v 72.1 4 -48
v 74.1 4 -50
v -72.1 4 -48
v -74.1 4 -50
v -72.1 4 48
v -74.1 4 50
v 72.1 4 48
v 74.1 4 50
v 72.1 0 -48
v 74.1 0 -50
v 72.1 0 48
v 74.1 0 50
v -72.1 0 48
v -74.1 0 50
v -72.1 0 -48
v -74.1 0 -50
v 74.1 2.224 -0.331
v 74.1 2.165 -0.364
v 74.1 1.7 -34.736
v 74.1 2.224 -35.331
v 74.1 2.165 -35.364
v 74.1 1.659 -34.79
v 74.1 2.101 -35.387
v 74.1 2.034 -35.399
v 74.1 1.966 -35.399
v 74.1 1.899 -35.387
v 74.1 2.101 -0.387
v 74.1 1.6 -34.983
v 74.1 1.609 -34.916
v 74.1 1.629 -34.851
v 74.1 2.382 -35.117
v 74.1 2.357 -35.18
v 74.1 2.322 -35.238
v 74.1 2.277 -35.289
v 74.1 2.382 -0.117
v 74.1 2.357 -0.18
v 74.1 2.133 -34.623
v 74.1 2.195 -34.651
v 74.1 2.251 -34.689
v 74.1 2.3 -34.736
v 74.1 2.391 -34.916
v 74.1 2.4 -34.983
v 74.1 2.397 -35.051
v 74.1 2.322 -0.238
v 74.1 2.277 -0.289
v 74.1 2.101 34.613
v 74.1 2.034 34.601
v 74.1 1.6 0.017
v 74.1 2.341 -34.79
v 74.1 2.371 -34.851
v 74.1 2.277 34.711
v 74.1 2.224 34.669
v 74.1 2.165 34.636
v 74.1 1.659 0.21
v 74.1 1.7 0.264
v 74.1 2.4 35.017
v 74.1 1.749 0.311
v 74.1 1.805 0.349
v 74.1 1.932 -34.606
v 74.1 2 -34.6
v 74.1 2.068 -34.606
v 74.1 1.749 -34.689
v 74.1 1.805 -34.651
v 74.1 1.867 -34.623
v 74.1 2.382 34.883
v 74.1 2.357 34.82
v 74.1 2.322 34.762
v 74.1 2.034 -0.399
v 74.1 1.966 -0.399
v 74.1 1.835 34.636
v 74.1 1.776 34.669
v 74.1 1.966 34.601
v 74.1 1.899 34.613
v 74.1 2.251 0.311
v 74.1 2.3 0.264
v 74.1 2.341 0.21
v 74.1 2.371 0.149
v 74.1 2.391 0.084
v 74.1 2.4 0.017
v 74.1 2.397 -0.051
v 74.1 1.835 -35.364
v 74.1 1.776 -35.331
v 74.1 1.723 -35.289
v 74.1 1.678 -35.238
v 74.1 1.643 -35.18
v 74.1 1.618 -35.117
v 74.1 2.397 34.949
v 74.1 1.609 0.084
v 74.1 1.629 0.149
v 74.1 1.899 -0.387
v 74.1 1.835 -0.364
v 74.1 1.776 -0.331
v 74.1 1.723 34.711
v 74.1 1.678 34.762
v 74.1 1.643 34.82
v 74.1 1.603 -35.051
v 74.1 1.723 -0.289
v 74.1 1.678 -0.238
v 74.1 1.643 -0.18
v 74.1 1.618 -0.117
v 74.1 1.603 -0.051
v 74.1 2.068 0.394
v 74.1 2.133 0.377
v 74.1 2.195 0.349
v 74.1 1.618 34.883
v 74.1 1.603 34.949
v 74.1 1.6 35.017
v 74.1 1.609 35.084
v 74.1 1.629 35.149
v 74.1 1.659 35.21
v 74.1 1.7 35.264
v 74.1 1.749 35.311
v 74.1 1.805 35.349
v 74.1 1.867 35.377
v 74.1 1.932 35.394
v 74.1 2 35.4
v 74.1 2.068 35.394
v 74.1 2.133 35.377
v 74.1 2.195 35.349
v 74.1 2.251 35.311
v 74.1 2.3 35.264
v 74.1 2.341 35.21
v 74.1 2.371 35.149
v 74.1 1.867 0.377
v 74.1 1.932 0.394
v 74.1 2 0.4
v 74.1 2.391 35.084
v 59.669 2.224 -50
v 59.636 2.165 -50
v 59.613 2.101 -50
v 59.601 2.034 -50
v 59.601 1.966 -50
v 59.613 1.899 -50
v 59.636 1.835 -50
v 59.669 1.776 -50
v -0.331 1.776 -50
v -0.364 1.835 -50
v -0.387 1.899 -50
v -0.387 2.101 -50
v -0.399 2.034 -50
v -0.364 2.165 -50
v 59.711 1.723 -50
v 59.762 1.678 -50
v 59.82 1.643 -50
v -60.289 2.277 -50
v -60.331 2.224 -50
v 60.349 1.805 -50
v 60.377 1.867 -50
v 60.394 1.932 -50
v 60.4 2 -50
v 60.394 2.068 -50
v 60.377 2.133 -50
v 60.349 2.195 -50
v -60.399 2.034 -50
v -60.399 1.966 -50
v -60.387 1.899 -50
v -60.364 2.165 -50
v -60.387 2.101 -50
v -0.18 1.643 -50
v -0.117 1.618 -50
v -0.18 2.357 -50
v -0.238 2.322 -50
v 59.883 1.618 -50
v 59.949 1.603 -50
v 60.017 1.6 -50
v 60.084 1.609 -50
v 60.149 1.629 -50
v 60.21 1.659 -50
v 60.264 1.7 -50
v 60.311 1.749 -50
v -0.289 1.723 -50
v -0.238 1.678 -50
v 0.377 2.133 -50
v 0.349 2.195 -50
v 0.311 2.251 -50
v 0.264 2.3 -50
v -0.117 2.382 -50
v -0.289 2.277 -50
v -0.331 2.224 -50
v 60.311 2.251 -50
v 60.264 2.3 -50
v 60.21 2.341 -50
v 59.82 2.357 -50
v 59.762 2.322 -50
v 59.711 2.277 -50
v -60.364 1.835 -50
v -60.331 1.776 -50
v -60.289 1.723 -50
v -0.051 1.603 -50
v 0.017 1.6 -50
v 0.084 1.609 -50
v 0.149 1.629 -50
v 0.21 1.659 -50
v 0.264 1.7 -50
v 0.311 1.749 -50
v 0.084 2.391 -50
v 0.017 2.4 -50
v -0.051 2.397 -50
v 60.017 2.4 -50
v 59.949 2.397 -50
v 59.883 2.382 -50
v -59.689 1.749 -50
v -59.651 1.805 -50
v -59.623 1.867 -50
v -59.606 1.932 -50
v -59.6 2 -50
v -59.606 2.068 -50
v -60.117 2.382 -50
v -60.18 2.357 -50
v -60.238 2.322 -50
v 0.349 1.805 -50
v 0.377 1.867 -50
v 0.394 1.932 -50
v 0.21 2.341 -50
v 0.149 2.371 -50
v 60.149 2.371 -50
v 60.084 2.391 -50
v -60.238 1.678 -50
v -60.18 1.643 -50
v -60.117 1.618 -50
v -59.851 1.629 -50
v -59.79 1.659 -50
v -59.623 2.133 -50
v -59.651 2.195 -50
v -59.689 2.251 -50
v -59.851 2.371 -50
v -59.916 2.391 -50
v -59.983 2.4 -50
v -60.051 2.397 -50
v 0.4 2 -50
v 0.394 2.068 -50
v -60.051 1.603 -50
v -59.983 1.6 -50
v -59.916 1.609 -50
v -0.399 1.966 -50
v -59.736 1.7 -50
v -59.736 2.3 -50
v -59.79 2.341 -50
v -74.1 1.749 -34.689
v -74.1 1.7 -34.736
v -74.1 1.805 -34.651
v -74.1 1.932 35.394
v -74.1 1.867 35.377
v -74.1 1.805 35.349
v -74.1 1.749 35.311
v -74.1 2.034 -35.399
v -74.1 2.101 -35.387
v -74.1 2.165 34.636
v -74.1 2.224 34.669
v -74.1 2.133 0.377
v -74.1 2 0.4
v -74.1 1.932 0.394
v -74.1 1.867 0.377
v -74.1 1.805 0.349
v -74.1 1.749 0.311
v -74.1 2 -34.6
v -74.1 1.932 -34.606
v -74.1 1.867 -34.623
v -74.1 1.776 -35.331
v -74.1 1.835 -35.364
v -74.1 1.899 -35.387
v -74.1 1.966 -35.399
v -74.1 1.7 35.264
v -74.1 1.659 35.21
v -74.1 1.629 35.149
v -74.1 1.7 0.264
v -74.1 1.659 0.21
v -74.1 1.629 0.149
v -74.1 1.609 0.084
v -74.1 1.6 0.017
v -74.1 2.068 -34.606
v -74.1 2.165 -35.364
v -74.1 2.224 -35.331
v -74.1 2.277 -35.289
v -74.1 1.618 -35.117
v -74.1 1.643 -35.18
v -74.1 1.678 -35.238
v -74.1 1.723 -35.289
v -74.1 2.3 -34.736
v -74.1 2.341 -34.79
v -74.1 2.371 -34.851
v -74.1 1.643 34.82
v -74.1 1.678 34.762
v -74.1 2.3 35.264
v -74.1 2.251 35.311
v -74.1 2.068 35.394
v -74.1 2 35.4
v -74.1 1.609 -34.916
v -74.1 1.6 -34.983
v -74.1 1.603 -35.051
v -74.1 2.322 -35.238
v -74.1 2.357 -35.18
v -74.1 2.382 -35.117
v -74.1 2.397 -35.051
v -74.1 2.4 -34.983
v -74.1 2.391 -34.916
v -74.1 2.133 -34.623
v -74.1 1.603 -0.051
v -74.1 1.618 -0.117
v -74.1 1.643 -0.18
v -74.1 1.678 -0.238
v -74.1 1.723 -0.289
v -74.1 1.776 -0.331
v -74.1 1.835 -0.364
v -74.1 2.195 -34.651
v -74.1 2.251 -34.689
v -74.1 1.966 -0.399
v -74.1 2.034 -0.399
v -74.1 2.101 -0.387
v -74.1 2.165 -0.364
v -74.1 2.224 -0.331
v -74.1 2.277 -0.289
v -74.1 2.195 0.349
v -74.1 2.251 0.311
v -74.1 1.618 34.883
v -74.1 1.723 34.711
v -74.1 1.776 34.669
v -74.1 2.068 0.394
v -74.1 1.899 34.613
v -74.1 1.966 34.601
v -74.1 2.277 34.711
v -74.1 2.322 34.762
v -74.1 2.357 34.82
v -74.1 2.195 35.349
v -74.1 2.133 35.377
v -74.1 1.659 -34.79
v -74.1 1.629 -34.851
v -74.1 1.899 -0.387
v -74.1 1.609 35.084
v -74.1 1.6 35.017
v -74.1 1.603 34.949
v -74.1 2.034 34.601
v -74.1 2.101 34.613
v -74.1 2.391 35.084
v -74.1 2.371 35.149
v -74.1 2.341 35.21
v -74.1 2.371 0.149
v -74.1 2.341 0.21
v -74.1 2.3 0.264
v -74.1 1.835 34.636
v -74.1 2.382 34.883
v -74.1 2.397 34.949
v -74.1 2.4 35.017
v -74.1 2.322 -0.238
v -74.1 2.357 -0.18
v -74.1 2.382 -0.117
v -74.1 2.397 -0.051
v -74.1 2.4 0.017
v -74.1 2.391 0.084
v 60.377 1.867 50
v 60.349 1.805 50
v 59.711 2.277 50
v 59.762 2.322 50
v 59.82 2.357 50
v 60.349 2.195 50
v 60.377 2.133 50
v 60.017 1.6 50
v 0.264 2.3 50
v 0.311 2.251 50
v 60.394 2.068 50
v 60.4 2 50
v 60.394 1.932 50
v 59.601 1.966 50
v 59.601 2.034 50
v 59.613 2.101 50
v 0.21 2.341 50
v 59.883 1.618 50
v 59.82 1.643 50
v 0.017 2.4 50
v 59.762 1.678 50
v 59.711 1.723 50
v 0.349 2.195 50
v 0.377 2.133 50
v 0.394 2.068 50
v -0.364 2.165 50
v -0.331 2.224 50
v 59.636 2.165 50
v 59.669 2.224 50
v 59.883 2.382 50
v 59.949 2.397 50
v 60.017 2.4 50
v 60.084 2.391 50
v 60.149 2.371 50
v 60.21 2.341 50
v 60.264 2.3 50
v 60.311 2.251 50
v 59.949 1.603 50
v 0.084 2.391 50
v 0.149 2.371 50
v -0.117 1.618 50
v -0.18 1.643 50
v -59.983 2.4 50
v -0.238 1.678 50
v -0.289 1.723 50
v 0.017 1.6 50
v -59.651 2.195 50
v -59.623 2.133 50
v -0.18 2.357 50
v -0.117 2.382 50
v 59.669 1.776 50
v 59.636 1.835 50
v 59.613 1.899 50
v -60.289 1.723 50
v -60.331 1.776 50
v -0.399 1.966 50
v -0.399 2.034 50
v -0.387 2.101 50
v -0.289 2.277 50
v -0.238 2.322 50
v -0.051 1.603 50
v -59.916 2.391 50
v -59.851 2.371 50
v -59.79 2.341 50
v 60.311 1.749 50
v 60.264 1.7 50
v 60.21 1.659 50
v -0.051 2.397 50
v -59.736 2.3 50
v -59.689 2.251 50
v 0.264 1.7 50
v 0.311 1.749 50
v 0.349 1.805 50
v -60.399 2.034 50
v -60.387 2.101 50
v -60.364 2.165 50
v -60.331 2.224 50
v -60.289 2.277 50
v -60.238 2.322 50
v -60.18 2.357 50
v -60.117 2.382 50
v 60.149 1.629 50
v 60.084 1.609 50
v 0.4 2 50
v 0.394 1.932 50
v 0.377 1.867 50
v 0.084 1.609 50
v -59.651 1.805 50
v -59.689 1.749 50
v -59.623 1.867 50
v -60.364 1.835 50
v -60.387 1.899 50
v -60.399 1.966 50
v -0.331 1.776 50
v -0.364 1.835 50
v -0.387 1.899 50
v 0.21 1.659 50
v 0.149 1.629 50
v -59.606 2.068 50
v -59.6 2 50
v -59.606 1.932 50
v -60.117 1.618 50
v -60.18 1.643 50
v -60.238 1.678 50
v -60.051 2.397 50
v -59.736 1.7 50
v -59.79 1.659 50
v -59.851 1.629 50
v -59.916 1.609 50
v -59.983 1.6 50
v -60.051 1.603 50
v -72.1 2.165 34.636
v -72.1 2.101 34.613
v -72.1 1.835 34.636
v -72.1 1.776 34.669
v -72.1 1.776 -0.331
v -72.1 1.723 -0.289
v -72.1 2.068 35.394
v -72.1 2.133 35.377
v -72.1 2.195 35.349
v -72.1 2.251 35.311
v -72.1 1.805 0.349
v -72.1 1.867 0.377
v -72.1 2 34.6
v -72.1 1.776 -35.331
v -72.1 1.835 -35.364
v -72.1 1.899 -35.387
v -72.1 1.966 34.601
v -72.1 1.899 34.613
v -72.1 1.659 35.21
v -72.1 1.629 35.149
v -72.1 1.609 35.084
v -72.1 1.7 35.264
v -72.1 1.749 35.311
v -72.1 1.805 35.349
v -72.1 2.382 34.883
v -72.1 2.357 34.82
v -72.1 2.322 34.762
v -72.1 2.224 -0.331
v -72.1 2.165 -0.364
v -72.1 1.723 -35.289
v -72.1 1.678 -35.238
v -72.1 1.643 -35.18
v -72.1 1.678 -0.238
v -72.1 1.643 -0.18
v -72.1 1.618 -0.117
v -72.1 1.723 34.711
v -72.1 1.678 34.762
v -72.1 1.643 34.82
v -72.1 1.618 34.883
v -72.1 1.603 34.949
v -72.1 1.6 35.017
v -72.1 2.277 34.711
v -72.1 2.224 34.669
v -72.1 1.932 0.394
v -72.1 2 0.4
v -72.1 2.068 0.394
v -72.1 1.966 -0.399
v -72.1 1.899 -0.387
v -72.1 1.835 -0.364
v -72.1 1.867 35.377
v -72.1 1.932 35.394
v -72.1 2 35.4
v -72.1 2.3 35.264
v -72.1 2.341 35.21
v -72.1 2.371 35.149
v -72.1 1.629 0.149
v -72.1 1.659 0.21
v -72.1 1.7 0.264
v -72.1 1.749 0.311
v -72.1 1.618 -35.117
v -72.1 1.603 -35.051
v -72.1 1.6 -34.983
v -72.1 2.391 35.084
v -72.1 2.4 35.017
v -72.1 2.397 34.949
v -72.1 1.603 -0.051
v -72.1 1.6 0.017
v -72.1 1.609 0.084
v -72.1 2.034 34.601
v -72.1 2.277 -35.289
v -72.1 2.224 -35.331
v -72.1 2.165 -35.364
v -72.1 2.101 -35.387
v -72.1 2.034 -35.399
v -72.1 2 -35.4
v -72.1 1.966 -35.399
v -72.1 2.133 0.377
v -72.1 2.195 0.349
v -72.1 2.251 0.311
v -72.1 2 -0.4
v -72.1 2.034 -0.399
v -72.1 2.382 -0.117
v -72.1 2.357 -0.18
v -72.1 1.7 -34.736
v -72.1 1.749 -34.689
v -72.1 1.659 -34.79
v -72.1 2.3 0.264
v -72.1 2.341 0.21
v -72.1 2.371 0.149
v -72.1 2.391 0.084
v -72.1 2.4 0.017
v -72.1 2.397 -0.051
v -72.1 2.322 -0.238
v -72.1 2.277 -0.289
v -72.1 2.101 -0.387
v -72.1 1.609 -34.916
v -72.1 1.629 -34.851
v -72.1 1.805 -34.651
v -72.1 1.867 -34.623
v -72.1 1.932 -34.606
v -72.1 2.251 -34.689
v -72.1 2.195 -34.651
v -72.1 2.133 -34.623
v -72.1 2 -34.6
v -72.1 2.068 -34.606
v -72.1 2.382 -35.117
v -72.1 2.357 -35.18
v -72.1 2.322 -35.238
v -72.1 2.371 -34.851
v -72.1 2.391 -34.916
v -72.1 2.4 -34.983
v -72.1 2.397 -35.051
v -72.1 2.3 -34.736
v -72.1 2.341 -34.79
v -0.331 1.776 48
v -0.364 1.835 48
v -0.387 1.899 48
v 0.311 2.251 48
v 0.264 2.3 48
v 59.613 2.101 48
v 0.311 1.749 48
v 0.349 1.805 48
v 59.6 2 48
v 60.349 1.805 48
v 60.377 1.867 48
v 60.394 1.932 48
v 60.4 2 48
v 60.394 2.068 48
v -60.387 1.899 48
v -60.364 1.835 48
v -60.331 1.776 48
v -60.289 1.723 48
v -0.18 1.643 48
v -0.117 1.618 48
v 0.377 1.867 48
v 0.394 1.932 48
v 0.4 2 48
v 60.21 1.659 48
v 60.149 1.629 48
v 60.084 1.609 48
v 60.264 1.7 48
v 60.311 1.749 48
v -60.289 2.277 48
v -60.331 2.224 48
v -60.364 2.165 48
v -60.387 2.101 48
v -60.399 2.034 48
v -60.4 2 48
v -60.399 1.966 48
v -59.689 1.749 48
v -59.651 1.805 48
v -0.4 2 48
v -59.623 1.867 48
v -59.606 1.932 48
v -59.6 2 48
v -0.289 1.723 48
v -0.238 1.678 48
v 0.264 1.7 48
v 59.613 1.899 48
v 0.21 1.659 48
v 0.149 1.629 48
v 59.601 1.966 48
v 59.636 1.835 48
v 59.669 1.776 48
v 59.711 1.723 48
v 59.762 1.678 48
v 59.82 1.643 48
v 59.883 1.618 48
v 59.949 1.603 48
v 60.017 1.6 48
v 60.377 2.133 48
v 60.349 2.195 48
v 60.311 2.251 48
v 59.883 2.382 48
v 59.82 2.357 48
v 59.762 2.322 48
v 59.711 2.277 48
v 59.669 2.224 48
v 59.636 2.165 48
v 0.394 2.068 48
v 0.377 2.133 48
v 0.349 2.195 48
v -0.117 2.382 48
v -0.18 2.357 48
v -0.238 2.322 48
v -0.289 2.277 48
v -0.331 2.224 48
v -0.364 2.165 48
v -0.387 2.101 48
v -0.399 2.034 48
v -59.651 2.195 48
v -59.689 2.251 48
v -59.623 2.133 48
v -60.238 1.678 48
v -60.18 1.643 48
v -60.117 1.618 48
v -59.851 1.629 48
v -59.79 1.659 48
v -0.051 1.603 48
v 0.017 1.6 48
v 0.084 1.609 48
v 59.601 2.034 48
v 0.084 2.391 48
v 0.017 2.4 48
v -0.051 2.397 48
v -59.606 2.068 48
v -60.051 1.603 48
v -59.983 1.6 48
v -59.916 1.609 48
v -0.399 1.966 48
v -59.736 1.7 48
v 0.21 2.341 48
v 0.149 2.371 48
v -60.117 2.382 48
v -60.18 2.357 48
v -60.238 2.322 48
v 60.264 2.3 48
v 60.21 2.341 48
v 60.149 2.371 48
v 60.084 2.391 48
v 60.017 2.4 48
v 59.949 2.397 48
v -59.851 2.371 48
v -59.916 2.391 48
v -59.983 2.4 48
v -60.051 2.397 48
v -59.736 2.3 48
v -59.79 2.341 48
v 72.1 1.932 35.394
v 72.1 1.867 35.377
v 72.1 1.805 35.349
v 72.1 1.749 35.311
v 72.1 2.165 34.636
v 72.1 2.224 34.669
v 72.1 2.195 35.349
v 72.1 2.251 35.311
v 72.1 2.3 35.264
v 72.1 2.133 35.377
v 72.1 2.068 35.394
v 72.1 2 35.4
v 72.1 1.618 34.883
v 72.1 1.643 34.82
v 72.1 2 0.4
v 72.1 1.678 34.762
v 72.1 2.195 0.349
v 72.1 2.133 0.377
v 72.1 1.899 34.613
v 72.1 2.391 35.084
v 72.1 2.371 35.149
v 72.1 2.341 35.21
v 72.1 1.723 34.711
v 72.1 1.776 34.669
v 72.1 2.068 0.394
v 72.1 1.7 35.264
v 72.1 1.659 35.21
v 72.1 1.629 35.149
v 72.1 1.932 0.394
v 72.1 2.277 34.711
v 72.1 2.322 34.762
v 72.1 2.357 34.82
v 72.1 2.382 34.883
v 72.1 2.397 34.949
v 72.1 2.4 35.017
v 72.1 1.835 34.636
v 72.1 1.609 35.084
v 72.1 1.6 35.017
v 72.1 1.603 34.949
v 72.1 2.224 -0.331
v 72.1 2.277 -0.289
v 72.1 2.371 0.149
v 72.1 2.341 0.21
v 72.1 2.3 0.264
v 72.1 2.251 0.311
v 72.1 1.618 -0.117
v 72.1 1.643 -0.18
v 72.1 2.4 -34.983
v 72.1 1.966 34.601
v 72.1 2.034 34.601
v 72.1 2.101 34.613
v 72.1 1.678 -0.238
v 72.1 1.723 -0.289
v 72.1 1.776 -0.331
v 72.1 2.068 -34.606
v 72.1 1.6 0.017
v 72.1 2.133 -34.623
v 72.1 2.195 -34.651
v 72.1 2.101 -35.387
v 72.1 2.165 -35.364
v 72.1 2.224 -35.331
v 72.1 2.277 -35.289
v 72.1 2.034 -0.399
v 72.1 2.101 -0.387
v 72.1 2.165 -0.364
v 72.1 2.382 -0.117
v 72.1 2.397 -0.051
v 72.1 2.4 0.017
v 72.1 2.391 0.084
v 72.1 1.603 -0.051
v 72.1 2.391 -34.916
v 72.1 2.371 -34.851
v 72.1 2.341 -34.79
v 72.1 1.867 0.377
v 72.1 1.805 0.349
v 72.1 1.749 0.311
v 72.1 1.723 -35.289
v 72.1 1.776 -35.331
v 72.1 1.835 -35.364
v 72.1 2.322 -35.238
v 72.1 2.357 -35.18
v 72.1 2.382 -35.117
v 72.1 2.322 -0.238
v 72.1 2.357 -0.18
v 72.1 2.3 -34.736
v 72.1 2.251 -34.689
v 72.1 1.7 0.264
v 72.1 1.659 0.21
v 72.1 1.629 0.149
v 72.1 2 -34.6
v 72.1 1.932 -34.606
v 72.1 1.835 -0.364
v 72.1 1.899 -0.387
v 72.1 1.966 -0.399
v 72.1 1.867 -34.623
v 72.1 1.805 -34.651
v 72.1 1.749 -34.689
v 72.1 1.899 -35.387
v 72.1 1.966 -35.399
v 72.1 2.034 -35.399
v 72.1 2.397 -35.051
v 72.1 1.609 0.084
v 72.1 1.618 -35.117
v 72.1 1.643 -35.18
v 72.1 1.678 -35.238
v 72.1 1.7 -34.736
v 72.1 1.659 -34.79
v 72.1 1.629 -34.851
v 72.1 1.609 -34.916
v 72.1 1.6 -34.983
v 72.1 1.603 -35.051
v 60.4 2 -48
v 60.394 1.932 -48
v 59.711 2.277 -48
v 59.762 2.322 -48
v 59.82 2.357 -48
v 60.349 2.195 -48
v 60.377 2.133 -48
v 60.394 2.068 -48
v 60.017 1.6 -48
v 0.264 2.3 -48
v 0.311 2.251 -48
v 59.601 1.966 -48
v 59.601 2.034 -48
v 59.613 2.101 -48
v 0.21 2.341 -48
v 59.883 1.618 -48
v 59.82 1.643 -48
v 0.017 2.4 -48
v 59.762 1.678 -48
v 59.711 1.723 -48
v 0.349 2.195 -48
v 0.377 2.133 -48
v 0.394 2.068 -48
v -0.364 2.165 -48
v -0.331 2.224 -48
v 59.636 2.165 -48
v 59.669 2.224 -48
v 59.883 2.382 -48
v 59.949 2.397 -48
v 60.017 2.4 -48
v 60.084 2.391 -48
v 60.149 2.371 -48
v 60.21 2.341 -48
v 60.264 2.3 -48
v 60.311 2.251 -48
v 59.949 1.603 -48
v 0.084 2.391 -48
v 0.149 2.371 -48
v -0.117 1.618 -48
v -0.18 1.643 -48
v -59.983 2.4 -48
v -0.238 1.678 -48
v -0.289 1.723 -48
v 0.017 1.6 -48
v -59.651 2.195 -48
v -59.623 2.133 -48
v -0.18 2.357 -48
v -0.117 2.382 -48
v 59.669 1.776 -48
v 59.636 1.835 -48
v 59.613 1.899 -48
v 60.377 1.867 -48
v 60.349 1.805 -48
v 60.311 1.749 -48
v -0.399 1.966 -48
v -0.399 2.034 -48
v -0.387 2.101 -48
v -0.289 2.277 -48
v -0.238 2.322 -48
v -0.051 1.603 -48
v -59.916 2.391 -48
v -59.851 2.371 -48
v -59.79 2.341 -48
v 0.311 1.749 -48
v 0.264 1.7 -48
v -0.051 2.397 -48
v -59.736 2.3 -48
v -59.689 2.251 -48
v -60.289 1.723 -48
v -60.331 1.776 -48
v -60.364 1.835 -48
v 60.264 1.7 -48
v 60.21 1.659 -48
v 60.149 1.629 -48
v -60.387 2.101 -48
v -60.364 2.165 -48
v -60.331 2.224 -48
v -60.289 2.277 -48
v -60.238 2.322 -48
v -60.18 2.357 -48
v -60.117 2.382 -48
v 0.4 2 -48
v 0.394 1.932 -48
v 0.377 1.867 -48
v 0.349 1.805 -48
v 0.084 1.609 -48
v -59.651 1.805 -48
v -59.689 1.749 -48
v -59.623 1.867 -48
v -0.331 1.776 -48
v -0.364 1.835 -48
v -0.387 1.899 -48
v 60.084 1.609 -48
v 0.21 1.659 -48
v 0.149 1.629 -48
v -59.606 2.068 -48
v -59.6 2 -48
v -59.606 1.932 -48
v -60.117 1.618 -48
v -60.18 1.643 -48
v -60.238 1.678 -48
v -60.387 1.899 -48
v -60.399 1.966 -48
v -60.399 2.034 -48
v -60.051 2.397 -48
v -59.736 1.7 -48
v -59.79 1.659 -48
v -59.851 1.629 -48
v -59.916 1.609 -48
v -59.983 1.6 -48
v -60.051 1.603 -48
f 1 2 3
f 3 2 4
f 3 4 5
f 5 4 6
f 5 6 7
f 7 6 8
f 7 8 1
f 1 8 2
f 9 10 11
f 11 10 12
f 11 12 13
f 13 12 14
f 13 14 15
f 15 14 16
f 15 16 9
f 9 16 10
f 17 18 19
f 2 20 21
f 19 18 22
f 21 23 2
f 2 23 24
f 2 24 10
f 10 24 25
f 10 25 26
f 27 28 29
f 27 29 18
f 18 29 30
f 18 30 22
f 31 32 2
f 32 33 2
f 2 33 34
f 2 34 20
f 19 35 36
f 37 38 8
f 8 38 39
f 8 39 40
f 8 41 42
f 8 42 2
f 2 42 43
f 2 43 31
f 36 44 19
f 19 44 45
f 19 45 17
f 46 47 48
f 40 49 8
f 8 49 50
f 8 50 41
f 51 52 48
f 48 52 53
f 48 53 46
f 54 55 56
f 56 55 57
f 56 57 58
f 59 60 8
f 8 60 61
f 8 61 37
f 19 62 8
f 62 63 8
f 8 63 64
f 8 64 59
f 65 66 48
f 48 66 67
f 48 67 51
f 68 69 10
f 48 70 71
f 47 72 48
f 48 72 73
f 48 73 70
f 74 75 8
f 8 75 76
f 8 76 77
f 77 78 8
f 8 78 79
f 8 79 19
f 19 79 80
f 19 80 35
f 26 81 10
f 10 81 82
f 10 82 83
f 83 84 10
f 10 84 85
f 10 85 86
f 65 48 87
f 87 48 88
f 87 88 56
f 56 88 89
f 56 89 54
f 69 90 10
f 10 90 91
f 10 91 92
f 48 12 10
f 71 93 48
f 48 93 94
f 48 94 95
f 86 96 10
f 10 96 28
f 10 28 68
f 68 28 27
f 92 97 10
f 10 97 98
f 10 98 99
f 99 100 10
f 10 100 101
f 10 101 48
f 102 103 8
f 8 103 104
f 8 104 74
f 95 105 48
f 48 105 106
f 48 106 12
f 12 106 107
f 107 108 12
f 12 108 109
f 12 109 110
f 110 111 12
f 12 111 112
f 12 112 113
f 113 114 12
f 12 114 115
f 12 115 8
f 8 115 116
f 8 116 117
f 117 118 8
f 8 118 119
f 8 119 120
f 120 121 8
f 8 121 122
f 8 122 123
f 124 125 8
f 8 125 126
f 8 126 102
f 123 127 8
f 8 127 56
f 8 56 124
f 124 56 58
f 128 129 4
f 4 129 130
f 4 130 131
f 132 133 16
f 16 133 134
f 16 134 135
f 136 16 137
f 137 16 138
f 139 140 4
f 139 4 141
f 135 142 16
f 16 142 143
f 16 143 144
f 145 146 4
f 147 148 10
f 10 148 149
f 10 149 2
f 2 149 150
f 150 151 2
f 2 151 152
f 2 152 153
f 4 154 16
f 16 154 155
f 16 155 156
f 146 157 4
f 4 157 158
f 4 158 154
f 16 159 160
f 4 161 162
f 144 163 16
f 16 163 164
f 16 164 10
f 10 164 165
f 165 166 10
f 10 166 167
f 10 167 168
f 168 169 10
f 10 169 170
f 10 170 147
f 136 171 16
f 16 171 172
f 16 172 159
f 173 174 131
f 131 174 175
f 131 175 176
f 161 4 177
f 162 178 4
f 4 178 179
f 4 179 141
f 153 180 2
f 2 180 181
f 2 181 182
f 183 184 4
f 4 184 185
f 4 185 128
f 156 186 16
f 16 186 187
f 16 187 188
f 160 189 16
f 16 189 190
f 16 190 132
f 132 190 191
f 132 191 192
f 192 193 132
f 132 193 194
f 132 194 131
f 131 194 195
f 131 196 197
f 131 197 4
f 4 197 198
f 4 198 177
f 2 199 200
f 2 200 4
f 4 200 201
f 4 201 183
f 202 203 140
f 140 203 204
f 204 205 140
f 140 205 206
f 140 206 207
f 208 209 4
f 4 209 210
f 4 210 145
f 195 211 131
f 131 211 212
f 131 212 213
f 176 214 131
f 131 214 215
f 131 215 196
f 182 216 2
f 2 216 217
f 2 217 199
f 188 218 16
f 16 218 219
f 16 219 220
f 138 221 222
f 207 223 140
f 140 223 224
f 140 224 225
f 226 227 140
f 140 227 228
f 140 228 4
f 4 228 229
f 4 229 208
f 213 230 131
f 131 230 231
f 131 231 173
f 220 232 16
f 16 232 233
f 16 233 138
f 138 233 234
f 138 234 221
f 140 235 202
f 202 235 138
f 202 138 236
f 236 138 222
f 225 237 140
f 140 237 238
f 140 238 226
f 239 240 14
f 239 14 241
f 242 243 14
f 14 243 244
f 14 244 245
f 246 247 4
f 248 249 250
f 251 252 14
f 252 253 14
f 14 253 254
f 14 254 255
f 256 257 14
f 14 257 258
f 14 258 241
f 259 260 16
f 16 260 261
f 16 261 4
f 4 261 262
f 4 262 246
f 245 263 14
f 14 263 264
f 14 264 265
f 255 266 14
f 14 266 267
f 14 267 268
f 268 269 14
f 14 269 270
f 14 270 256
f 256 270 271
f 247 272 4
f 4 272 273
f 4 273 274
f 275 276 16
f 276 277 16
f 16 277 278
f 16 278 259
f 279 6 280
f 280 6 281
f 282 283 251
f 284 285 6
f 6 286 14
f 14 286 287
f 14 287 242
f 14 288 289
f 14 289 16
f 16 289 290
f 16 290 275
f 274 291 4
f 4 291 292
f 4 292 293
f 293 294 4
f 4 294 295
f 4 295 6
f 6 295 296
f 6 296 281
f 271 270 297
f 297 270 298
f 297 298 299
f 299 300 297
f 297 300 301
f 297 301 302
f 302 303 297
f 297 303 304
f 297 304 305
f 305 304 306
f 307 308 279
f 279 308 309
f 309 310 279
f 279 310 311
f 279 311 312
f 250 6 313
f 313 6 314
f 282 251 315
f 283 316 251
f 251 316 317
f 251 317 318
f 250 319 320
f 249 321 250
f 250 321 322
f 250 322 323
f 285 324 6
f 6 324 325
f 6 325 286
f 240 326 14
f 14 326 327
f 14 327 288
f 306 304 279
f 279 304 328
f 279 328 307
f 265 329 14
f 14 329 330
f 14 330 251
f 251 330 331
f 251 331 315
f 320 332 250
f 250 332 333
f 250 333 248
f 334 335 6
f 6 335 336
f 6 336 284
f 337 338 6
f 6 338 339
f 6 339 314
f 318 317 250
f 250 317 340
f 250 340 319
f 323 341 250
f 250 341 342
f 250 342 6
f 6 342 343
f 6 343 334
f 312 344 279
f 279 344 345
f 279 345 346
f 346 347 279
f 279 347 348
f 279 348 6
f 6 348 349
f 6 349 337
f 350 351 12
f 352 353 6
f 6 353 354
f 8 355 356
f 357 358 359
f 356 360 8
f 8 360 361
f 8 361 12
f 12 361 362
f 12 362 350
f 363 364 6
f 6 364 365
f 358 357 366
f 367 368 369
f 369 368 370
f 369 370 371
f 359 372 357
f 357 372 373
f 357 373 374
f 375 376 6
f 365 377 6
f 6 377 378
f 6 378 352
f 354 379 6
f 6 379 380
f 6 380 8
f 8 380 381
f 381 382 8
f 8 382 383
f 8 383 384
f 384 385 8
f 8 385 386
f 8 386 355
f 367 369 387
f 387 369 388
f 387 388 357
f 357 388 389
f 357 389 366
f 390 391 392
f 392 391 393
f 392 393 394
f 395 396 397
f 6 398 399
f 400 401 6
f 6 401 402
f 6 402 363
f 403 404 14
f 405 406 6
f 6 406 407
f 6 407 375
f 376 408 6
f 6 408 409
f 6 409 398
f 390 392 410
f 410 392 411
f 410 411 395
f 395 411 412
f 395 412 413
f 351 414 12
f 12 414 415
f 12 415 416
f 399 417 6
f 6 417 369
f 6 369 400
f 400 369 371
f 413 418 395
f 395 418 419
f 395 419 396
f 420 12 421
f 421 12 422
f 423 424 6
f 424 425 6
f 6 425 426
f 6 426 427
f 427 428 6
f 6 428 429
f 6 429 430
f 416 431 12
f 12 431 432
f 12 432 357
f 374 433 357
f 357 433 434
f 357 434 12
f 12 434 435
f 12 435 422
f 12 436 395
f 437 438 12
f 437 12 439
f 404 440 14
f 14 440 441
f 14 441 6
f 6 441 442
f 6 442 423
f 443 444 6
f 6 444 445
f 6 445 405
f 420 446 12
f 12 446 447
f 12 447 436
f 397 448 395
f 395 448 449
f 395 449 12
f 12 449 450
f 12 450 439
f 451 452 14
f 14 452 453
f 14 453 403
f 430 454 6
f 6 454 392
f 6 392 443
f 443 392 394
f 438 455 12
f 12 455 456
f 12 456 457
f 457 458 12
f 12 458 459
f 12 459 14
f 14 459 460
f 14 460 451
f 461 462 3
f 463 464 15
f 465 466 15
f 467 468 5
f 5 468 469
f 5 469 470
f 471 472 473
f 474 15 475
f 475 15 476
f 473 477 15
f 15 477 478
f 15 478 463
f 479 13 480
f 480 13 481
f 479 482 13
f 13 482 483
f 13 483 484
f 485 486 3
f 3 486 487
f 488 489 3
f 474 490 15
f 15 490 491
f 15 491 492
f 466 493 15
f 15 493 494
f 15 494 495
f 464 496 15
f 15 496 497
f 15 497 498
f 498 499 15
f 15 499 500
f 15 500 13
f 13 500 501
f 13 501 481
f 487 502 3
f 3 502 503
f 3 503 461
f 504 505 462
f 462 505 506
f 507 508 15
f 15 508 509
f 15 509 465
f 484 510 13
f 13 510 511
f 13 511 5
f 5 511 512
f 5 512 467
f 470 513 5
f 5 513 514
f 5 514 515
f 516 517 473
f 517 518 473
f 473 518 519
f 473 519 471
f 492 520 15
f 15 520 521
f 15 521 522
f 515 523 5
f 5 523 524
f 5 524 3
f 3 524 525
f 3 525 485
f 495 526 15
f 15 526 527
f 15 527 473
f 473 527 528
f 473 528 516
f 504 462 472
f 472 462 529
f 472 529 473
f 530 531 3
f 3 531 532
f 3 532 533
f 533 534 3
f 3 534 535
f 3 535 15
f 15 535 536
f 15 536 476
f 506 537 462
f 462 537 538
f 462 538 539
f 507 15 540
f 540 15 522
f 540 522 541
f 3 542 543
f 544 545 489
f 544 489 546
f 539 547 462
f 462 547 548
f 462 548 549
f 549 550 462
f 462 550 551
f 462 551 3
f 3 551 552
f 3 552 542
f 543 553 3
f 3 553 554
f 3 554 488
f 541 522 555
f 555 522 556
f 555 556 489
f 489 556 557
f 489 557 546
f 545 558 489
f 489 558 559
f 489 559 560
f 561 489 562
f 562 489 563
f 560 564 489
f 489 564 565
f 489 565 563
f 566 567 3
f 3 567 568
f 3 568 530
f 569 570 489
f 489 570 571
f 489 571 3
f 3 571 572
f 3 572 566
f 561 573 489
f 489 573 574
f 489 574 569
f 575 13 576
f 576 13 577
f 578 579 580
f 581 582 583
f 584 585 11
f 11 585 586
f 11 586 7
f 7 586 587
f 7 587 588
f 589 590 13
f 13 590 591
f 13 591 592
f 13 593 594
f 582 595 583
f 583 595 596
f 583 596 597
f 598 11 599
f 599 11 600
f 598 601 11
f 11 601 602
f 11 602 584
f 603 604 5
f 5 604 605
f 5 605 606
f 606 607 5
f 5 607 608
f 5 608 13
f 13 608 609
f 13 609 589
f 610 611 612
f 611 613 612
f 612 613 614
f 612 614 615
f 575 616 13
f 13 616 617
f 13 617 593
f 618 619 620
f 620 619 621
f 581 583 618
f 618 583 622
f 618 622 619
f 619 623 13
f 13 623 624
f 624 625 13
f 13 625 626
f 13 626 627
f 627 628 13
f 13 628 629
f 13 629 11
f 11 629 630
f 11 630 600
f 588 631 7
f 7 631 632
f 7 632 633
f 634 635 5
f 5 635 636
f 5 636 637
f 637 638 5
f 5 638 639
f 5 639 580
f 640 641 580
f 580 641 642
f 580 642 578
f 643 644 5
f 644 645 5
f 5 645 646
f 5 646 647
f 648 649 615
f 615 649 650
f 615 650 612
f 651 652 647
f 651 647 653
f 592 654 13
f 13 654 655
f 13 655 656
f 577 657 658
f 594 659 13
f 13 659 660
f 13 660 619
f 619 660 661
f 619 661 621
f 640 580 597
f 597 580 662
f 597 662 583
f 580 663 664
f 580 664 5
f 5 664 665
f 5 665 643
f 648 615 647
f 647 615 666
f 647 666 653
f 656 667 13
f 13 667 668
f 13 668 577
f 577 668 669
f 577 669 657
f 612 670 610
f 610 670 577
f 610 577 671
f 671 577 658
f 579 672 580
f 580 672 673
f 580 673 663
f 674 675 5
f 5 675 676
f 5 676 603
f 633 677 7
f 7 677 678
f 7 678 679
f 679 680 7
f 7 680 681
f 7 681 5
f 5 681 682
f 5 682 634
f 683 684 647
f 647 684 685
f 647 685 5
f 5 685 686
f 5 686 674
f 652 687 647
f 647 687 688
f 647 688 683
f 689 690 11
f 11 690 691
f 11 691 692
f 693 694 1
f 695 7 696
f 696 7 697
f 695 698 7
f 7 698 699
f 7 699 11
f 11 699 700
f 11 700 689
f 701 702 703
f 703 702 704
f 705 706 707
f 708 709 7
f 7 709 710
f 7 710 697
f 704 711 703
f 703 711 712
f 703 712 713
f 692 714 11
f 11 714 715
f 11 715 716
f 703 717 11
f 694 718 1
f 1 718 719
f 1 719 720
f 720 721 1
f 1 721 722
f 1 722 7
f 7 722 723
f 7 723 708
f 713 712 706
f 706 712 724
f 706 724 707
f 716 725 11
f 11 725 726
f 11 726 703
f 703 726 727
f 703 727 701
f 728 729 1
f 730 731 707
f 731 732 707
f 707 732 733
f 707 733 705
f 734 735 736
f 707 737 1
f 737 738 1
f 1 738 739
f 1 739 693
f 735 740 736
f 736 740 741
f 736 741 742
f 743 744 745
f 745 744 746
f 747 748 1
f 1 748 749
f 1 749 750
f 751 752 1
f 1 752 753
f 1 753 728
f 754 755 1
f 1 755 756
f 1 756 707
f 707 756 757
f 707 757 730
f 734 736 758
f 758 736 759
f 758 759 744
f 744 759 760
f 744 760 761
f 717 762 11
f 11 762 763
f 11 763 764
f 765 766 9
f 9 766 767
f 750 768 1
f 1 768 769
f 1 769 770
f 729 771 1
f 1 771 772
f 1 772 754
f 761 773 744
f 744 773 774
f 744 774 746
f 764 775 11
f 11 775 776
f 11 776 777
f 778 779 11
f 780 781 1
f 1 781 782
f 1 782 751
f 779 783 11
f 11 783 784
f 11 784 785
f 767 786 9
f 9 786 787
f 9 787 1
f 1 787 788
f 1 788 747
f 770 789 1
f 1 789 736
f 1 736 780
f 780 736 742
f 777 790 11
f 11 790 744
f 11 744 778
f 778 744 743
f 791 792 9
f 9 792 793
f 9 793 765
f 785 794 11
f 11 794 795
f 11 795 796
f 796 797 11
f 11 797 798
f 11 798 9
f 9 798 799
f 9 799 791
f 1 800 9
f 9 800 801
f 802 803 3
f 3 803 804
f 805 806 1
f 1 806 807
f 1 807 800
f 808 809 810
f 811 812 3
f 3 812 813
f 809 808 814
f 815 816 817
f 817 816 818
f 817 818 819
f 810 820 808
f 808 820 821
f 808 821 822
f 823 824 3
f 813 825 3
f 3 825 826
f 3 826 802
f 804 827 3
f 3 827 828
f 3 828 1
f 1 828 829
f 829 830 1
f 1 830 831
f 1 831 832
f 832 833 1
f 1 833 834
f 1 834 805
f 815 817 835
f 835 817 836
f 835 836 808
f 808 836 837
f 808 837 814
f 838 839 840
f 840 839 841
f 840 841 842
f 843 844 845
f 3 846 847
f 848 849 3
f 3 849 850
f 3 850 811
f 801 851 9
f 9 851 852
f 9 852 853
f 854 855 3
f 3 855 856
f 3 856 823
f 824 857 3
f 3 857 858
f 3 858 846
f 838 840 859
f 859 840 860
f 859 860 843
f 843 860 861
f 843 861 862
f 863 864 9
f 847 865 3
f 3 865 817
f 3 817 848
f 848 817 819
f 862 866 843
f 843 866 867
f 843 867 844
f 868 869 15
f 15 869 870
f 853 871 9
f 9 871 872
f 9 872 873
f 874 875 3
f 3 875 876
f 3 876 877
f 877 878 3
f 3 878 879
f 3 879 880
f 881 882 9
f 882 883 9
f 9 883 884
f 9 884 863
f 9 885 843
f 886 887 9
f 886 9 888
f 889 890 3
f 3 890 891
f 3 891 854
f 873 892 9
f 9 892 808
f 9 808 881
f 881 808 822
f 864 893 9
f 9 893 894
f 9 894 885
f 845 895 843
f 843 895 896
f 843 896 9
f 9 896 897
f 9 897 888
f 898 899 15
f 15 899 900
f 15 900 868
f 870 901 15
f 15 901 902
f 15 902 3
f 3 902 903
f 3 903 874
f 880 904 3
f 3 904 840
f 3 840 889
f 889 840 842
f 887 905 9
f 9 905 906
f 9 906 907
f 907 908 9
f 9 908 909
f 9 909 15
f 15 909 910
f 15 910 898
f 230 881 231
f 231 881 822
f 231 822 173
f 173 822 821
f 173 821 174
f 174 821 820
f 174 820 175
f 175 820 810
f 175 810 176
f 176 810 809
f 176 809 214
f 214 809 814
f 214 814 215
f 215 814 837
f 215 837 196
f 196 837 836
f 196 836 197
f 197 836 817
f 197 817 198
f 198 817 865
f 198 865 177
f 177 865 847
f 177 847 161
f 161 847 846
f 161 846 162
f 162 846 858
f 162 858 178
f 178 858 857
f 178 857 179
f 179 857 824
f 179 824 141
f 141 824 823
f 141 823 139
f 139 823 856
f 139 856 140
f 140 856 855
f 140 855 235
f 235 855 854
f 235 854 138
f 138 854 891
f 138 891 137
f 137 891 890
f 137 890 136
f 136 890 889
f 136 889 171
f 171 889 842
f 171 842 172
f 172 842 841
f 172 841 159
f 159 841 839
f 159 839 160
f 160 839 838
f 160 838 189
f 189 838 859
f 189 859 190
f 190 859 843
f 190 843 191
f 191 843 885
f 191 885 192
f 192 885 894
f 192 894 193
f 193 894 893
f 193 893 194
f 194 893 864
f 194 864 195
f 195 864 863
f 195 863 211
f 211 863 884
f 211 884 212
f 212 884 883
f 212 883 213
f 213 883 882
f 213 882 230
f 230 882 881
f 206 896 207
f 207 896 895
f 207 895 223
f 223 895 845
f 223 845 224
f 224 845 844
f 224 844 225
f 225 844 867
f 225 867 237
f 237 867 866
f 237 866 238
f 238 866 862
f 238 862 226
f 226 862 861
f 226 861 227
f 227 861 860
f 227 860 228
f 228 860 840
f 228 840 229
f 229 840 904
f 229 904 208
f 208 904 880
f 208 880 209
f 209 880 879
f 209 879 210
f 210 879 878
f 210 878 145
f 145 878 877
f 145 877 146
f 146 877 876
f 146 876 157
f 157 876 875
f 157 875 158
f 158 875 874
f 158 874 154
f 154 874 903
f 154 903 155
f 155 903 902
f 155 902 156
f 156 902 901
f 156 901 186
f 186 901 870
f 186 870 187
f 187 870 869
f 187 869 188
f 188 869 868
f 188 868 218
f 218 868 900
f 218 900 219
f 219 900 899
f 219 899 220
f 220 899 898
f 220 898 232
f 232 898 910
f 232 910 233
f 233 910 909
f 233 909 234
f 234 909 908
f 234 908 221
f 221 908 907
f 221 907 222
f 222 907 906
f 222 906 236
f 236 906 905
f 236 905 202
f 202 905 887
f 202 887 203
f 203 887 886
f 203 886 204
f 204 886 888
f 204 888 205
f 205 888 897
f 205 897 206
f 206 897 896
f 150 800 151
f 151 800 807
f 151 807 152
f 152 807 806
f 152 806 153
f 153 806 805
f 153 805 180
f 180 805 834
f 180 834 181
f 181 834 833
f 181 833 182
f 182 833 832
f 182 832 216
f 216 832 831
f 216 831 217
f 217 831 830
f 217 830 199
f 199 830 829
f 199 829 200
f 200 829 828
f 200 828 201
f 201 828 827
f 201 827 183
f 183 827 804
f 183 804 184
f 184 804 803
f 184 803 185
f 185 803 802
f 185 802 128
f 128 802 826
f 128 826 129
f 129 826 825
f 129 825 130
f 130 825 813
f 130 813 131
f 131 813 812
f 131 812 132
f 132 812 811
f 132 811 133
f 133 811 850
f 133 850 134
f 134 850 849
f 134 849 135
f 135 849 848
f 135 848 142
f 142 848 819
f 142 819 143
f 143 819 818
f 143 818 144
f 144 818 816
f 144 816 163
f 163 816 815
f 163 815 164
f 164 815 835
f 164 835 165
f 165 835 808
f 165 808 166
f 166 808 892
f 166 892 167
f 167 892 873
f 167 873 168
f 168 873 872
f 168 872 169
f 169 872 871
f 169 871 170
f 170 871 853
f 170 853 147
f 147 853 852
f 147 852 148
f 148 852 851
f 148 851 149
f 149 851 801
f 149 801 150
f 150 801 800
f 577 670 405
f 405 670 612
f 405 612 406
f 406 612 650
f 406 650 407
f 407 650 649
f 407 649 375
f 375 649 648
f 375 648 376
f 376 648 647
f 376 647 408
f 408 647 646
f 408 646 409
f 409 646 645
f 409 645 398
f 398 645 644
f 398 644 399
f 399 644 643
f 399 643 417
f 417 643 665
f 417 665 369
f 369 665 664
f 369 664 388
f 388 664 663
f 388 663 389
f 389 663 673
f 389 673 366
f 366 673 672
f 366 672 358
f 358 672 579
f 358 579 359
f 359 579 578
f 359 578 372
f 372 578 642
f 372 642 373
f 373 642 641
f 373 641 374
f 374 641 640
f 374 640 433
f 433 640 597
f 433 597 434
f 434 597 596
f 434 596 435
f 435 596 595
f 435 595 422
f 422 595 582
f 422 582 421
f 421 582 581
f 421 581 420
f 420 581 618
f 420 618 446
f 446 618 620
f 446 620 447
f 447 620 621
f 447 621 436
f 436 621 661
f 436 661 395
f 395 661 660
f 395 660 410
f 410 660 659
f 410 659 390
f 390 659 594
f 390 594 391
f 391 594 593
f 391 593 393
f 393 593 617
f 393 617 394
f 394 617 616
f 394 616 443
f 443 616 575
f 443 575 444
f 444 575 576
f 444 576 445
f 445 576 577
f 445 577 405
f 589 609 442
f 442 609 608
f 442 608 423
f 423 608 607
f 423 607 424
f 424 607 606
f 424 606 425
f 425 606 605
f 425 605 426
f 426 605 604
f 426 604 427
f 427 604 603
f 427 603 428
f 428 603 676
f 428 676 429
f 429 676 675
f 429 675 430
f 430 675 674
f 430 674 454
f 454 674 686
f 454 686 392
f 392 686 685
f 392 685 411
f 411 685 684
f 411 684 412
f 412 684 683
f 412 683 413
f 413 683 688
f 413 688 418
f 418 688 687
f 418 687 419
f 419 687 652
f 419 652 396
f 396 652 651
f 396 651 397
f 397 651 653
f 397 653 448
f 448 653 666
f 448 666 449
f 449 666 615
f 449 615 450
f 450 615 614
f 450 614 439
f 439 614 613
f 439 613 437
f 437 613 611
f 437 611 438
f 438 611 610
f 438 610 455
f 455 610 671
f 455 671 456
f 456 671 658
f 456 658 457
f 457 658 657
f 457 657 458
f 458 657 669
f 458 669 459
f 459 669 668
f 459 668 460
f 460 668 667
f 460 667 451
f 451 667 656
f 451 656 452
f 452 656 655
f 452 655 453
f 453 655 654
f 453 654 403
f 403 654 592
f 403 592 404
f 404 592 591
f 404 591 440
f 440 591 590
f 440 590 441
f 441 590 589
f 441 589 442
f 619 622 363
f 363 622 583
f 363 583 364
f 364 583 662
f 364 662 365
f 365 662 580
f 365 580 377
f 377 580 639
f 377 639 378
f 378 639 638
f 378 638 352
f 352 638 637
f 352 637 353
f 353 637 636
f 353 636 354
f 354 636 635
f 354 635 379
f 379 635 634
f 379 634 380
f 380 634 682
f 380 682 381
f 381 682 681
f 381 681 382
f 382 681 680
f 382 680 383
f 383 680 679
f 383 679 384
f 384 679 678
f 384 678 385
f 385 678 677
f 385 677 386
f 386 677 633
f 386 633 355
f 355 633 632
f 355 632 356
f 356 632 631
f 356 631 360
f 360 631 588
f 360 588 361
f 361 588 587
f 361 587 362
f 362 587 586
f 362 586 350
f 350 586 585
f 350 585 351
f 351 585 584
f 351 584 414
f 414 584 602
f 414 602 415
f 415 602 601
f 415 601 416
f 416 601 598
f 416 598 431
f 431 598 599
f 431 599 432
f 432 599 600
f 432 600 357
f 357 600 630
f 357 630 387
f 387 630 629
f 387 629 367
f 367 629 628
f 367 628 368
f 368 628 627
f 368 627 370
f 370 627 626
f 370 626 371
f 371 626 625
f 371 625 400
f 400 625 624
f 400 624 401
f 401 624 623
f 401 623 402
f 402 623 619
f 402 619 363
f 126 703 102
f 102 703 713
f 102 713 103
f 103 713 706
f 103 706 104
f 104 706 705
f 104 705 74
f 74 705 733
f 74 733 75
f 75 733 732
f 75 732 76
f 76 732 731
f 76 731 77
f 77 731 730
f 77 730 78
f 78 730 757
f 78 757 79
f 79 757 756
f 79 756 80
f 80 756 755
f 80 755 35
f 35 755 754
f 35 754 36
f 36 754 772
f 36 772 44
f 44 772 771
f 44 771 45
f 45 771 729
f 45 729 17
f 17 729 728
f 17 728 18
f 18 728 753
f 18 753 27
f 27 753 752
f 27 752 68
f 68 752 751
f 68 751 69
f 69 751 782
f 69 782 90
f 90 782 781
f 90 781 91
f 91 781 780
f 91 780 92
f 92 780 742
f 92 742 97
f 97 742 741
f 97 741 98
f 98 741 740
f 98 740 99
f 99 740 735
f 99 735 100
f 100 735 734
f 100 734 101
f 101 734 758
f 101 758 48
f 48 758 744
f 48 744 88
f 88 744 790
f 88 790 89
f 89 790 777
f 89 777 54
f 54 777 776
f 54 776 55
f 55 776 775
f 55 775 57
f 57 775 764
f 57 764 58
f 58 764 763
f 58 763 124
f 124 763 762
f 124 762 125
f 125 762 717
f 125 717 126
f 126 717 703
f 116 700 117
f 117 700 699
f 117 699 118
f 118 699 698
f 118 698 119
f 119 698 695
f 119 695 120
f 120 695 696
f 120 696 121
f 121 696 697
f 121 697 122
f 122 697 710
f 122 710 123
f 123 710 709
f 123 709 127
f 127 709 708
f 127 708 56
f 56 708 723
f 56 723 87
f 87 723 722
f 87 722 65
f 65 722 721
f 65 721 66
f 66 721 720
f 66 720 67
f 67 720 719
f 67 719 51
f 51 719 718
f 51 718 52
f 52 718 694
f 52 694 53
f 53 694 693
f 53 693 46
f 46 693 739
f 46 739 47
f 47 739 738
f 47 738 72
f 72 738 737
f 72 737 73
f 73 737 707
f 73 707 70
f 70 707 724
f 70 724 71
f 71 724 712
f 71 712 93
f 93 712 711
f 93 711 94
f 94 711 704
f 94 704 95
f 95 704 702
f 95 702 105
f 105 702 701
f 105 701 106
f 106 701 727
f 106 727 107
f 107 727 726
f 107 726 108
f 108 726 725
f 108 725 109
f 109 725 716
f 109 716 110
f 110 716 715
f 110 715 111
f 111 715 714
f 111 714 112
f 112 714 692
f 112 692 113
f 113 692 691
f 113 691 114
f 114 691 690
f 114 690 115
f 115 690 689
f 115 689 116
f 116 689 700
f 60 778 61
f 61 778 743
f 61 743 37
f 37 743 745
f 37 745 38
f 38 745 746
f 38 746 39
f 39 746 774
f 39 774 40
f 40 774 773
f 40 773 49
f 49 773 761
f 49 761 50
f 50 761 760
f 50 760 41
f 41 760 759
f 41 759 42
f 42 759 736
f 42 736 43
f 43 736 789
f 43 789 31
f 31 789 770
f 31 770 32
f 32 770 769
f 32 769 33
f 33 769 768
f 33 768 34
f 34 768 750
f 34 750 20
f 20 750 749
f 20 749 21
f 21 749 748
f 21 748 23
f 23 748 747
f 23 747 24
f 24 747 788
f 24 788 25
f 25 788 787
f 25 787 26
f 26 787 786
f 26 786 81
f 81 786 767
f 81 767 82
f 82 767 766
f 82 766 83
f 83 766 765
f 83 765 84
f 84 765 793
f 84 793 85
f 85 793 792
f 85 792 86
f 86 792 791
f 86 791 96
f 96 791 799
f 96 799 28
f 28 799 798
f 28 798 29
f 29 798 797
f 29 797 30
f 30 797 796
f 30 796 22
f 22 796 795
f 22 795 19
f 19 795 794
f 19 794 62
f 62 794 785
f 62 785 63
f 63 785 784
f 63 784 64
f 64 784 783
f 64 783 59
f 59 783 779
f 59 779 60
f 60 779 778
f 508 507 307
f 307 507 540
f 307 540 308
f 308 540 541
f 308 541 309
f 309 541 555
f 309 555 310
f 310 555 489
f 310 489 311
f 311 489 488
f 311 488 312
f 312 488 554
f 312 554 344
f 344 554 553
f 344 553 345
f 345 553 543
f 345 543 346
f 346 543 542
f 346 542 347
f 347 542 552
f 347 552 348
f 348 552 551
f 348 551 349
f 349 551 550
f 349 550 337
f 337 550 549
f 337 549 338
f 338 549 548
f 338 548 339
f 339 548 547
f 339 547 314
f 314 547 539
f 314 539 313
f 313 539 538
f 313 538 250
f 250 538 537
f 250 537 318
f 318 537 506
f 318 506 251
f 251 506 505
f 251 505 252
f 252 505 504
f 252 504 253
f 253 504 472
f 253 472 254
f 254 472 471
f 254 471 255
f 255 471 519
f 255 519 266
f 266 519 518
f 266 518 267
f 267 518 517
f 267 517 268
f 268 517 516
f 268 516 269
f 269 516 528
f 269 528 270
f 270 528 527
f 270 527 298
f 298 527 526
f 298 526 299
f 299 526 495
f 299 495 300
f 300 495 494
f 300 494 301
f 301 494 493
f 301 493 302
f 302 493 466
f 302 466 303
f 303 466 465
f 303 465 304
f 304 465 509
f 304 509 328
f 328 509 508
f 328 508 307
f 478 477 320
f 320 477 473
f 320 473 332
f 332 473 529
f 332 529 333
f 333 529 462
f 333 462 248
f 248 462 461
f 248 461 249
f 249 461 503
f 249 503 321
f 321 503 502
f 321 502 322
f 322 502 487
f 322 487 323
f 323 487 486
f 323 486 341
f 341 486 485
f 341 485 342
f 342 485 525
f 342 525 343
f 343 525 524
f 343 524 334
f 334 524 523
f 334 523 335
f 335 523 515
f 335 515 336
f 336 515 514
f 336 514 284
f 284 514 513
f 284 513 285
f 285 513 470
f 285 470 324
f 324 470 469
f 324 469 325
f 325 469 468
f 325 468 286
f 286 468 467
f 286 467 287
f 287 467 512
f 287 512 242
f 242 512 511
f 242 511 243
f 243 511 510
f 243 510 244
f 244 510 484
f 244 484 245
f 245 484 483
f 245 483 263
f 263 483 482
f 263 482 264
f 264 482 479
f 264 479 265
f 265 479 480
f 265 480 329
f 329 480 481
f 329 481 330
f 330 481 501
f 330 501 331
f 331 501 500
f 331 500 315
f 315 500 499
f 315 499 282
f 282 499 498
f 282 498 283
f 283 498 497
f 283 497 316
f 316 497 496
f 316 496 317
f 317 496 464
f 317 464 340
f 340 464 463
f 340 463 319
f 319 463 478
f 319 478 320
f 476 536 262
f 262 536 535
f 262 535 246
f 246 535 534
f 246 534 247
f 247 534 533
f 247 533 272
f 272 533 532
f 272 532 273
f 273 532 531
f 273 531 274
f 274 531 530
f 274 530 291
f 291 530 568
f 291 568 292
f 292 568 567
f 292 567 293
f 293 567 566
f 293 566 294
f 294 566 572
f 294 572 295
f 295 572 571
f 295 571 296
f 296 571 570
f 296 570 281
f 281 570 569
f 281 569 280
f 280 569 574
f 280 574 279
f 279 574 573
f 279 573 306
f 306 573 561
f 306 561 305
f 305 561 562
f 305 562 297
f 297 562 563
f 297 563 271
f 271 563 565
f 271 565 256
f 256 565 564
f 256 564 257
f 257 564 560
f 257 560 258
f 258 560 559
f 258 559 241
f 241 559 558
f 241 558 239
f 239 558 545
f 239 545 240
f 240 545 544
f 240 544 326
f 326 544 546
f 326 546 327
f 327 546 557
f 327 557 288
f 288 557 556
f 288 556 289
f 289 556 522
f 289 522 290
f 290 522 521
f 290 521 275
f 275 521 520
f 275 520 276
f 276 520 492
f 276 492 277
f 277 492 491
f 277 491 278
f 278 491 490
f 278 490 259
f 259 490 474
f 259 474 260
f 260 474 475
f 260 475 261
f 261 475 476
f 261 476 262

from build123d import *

# Parameters (mm, degrees)
SKETCH_1_W          = 148.2
SKETCH_1_H          = 100
SKETCH_1_W_2        = 144.2
SKETCH_1_H_2        = 96
EXTRUDE_1_DEPTH     = 4
SKETCH_2_R          = 0.4
CUT_EXTRUDE_1_DEPTH = 125.526342595
SKETCH_3_R          = 0.4
CUT_EXTRUDE_2_DEPTH = 157.458428984


with BuildPart() as part:
    # 草图1 → 凸台-拉伸1 (new body)
    with BuildSketch(Plane(origin=(0, 0, 0), x_dir=(1, 0, 0), z_dir=(0, 1, 0))):
        Rectangle(SKETCH_1_W, SKETCH_1_H)
        Rectangle(SKETCH_1_W_2, SKETCH_1_H_2, mode=Mode.SUBTRACT)
    extrude(amount=EXTRUDE_1_DEPTH)

    # 草图2 → 切除-拉伸1 (cut, through all)
    with BuildSketch(Plane.XY.offset(50)):
        with Locations((0, 2)):
            Circle(SKETCH_2_R)
        with Locations((-60, 2)):
            Circle(SKETCH_2_R)
        with Locations((60, 2)):
            Circle(SKETCH_2_R)
    extrude(amount=-CUT_EXTRUDE_1_DEPTH, mode=Mode.SUBTRACT)

    # 草图3 → 切除-拉伸2 (cut, through all)
    with BuildSketch(Plane.ZY.offset(74.1)):
        with Locations((0, 2)):
            Circle(SKETCH_3_R)
        with Locations((35, 2)):
            Circle(SKETCH_3_R)
        with Locations((-35, 2)):
            Circle(SKETCH_3_R)
    extrude(amount=-CUT_EXTRUDE_2_DEPTH, mode=Mode.SUBTRACT)


solid = part.part
